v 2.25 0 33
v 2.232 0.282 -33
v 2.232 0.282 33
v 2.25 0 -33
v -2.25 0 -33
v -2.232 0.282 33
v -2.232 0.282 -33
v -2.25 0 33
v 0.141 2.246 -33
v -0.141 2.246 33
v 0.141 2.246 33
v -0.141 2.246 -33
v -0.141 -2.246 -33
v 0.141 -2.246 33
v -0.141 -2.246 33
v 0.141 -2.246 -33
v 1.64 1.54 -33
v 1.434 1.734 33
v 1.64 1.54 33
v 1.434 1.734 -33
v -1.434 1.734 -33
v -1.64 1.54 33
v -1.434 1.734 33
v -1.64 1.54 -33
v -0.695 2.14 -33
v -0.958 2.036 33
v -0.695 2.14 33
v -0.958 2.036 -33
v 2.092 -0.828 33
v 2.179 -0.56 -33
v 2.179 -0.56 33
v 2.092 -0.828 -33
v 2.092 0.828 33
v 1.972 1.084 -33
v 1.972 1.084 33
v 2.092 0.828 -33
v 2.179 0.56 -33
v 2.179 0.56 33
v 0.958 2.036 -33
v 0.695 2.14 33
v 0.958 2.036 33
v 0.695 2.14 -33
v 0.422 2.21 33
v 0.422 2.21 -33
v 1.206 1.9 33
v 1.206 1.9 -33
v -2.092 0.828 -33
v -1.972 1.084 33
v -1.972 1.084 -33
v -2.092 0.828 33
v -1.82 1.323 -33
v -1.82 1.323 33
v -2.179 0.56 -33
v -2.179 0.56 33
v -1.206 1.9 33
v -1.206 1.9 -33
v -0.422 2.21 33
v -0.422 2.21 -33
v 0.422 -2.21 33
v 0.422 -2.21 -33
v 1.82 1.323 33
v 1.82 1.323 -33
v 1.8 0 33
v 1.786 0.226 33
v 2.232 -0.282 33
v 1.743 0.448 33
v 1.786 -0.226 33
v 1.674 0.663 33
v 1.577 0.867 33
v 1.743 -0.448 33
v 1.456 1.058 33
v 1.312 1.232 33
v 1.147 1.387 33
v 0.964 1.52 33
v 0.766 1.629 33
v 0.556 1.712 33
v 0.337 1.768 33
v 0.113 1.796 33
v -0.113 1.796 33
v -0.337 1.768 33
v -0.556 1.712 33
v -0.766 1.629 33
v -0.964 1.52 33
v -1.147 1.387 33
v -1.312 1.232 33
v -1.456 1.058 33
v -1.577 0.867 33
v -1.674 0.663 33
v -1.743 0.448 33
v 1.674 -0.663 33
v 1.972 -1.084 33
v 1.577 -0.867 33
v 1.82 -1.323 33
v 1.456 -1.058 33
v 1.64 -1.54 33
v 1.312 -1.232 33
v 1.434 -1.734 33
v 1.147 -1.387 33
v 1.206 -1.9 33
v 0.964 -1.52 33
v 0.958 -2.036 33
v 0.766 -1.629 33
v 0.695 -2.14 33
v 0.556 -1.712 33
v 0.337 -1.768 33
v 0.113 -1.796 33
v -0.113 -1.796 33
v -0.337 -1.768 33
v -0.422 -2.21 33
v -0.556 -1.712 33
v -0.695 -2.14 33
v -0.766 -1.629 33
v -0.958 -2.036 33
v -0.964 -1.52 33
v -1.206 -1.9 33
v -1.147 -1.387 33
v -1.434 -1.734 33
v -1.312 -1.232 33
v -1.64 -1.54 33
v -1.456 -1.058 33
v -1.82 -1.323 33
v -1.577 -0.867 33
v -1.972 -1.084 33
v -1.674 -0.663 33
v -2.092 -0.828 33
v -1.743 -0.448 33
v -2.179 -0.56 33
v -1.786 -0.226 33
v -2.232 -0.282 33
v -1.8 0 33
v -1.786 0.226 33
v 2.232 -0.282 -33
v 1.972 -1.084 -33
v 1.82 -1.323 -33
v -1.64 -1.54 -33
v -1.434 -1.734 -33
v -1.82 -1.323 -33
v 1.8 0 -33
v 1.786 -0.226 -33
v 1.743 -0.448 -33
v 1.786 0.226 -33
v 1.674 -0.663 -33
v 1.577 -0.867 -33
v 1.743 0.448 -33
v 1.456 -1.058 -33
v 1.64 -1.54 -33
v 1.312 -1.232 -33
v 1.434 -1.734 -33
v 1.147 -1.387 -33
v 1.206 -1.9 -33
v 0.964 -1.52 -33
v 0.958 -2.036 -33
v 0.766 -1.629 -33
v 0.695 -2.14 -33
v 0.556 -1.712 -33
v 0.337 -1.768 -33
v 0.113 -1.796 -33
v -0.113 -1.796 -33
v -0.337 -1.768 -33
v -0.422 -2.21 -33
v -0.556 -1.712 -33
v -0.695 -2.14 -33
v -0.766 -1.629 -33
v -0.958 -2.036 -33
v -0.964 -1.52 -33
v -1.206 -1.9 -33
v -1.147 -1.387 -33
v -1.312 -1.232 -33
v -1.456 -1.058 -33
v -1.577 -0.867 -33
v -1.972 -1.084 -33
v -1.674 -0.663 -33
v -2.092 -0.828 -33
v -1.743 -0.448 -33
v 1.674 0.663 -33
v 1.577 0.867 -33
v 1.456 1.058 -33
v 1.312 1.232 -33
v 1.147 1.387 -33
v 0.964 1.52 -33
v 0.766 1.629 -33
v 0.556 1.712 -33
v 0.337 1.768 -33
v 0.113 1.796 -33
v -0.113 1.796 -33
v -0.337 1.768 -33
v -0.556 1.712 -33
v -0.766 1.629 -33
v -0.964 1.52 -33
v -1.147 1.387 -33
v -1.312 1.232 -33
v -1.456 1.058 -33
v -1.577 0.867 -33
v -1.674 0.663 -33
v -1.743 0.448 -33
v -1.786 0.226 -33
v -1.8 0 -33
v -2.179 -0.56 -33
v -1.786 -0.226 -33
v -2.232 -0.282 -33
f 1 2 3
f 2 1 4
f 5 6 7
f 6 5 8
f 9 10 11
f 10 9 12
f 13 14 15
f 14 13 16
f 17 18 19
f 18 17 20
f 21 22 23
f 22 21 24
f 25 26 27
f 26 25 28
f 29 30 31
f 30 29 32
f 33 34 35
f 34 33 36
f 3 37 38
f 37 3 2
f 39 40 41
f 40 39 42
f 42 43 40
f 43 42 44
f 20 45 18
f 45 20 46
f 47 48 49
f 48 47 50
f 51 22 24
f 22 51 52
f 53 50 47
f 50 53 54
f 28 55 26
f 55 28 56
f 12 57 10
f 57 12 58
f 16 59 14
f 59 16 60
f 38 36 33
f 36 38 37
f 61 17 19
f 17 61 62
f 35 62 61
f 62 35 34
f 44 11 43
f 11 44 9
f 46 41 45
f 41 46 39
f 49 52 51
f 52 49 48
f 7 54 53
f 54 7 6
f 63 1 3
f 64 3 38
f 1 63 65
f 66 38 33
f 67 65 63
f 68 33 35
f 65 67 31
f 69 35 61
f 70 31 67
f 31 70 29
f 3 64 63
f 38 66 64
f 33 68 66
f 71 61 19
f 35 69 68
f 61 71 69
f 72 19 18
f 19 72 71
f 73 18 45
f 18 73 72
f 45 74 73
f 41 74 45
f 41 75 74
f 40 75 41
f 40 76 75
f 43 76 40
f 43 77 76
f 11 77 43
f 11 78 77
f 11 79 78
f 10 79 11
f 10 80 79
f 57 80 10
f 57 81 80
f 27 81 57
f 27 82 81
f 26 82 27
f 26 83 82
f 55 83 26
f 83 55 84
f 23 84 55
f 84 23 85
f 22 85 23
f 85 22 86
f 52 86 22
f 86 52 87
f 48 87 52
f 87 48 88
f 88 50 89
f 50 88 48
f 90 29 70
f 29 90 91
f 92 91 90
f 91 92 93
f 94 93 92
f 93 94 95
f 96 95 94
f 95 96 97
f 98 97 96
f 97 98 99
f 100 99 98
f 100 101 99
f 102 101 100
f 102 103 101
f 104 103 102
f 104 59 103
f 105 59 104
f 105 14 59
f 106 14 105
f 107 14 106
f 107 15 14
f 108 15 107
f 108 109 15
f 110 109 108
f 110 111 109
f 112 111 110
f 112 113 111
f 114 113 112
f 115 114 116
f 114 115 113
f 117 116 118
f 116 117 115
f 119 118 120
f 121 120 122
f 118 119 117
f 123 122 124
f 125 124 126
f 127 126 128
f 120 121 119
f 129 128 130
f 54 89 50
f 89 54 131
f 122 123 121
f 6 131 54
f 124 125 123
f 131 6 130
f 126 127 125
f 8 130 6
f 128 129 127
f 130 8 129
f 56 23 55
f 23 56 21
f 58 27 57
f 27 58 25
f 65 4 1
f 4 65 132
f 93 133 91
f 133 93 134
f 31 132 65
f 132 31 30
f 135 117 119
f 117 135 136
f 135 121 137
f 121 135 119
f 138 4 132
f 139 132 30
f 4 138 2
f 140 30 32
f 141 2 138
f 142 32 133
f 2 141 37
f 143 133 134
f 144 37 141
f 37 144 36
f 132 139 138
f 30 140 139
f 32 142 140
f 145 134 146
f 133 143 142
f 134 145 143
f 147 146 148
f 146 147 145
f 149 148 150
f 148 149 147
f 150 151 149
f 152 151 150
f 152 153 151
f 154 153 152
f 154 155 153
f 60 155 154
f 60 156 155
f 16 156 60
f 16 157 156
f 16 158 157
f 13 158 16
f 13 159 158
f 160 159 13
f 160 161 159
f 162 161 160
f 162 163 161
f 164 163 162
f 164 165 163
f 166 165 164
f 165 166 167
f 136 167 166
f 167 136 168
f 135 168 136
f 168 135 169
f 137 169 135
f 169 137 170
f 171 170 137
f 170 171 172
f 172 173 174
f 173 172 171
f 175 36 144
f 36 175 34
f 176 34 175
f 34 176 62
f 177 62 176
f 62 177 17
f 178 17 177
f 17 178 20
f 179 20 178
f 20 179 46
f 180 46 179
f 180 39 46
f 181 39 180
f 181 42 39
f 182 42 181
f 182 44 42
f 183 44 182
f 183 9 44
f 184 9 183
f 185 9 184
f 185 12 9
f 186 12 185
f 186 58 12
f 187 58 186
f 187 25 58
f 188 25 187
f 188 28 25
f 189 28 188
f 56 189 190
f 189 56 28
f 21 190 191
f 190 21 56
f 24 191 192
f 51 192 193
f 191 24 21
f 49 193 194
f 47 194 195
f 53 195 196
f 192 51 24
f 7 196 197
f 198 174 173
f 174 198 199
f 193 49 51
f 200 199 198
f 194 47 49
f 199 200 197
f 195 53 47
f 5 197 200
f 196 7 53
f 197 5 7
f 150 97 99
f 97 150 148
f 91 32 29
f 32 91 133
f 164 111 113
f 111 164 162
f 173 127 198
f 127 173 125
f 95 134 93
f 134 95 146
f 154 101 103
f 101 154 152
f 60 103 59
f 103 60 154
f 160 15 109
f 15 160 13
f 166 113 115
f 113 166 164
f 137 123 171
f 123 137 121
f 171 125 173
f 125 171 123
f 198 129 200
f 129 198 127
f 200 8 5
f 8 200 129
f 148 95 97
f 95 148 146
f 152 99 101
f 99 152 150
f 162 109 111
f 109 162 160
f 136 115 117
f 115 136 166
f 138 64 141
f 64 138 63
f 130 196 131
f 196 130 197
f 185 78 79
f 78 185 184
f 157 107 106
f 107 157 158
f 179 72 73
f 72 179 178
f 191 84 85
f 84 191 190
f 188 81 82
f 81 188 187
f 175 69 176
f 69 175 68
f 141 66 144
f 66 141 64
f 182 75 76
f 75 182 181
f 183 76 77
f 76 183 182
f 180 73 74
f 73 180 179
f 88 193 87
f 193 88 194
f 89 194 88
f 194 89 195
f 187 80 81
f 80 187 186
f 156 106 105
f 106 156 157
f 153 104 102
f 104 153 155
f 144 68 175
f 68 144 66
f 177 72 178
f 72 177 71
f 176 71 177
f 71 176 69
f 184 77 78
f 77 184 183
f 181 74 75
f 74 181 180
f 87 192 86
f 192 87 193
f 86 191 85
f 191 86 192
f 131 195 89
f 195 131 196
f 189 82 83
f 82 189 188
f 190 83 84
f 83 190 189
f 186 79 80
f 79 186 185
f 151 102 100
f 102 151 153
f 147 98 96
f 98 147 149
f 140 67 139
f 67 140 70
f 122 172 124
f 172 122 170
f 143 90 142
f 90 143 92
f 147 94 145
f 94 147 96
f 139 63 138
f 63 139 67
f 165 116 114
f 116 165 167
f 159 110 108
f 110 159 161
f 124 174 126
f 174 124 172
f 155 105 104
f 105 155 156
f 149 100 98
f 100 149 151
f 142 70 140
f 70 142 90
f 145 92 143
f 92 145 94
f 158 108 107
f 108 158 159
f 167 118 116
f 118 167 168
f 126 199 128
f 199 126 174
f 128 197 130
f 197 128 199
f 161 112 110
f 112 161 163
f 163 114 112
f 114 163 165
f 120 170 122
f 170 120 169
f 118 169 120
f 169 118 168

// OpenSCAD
$fn = 50;


difference() {
	union() {
		translate(v = [0, 0, -33.0000000000]) {
			cylinder(h = 66, r = 2.2500000000);
		}
	}
	union() {
		translate(v = [0, 0, -100.0000000000]) {
			cylinder(h = 200, r = 1.8000000000);
		}
	}
}
